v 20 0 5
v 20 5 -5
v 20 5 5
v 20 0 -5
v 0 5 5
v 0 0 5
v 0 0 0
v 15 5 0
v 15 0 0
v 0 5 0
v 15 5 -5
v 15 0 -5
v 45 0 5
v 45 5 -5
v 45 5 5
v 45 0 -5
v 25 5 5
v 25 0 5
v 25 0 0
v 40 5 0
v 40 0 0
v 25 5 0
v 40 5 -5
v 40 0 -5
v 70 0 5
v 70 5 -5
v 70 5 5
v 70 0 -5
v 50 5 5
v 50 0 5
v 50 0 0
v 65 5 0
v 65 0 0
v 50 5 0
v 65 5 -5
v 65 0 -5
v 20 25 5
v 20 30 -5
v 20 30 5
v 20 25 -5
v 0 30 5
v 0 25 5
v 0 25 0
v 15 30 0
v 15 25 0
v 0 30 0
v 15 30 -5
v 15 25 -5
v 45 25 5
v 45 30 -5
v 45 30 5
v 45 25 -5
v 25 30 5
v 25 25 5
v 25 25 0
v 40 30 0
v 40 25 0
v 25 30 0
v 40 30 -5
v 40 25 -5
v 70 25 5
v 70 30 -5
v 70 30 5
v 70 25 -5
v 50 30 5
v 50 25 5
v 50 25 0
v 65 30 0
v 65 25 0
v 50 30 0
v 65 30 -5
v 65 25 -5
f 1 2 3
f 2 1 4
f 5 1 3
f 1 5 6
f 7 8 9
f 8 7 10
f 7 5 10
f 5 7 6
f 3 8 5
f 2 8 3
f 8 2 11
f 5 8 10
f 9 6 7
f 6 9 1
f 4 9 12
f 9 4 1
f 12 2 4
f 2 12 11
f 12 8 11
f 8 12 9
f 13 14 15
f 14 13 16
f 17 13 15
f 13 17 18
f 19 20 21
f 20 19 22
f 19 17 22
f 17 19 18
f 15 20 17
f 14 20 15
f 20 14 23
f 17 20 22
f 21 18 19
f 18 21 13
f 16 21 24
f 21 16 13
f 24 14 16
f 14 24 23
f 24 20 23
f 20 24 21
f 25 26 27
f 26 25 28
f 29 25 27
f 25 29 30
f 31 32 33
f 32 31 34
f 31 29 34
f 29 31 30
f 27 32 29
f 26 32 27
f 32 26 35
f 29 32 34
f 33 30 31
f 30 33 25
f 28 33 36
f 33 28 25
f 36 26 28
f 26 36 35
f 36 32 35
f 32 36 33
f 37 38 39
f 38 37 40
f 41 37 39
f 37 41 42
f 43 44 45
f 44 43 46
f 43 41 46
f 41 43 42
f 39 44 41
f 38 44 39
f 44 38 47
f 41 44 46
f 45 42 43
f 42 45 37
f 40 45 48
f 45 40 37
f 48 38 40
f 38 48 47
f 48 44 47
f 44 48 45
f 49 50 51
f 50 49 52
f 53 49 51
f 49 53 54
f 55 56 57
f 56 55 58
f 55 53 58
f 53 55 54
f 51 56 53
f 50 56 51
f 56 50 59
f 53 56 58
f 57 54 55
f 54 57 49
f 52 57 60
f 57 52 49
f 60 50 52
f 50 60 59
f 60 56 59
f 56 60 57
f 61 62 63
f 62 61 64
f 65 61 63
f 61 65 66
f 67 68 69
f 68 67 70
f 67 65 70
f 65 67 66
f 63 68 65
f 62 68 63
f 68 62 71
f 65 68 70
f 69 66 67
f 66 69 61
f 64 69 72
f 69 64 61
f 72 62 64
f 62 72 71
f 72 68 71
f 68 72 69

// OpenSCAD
// Function to create a single angled connector
module angled_connector() {
    // Base dimensions for the connector
    connector_length = 20;
    connector_width = 5;
    connector_height = 5;
    angle_offset = 10;

    // Create the "L" shape with corrected alignment and sharper bend
    union() {
        // Horizontal part
        cube([connector_length, connector_width, connector_height]);

        // Vertical part with sharper bend and proper alignment
        translate([connector_length - connector_width, 0, connector_height])
        rotate([0, 90, 0]) // Corrected rotation for sharper bend
        cube([connector_length - angle_offset, connector_width, connector_height]);
    }
}

// Position and render all six angled connectors
module model() {
    // Define corrected positions for the six connectors
    positions = [
        [0, 0, 0],
        [25, 0, 0], // Adjusted spacing for uniformity
        [50, 0, 0], // Adjusted spacing for uniformity
        [0, 25, 0], // Adjusted spacing for uniformity
        [25, 25, 0], // Adjusted spacing for uniformity
        [50, 25, 0]  // Adjusted spacing for uniformity
    ];

    // Render each connector at its respective position
    for (pos = positions) {
        translate(pos)
        angled_connector();
    }
}

// Render the model
model();
